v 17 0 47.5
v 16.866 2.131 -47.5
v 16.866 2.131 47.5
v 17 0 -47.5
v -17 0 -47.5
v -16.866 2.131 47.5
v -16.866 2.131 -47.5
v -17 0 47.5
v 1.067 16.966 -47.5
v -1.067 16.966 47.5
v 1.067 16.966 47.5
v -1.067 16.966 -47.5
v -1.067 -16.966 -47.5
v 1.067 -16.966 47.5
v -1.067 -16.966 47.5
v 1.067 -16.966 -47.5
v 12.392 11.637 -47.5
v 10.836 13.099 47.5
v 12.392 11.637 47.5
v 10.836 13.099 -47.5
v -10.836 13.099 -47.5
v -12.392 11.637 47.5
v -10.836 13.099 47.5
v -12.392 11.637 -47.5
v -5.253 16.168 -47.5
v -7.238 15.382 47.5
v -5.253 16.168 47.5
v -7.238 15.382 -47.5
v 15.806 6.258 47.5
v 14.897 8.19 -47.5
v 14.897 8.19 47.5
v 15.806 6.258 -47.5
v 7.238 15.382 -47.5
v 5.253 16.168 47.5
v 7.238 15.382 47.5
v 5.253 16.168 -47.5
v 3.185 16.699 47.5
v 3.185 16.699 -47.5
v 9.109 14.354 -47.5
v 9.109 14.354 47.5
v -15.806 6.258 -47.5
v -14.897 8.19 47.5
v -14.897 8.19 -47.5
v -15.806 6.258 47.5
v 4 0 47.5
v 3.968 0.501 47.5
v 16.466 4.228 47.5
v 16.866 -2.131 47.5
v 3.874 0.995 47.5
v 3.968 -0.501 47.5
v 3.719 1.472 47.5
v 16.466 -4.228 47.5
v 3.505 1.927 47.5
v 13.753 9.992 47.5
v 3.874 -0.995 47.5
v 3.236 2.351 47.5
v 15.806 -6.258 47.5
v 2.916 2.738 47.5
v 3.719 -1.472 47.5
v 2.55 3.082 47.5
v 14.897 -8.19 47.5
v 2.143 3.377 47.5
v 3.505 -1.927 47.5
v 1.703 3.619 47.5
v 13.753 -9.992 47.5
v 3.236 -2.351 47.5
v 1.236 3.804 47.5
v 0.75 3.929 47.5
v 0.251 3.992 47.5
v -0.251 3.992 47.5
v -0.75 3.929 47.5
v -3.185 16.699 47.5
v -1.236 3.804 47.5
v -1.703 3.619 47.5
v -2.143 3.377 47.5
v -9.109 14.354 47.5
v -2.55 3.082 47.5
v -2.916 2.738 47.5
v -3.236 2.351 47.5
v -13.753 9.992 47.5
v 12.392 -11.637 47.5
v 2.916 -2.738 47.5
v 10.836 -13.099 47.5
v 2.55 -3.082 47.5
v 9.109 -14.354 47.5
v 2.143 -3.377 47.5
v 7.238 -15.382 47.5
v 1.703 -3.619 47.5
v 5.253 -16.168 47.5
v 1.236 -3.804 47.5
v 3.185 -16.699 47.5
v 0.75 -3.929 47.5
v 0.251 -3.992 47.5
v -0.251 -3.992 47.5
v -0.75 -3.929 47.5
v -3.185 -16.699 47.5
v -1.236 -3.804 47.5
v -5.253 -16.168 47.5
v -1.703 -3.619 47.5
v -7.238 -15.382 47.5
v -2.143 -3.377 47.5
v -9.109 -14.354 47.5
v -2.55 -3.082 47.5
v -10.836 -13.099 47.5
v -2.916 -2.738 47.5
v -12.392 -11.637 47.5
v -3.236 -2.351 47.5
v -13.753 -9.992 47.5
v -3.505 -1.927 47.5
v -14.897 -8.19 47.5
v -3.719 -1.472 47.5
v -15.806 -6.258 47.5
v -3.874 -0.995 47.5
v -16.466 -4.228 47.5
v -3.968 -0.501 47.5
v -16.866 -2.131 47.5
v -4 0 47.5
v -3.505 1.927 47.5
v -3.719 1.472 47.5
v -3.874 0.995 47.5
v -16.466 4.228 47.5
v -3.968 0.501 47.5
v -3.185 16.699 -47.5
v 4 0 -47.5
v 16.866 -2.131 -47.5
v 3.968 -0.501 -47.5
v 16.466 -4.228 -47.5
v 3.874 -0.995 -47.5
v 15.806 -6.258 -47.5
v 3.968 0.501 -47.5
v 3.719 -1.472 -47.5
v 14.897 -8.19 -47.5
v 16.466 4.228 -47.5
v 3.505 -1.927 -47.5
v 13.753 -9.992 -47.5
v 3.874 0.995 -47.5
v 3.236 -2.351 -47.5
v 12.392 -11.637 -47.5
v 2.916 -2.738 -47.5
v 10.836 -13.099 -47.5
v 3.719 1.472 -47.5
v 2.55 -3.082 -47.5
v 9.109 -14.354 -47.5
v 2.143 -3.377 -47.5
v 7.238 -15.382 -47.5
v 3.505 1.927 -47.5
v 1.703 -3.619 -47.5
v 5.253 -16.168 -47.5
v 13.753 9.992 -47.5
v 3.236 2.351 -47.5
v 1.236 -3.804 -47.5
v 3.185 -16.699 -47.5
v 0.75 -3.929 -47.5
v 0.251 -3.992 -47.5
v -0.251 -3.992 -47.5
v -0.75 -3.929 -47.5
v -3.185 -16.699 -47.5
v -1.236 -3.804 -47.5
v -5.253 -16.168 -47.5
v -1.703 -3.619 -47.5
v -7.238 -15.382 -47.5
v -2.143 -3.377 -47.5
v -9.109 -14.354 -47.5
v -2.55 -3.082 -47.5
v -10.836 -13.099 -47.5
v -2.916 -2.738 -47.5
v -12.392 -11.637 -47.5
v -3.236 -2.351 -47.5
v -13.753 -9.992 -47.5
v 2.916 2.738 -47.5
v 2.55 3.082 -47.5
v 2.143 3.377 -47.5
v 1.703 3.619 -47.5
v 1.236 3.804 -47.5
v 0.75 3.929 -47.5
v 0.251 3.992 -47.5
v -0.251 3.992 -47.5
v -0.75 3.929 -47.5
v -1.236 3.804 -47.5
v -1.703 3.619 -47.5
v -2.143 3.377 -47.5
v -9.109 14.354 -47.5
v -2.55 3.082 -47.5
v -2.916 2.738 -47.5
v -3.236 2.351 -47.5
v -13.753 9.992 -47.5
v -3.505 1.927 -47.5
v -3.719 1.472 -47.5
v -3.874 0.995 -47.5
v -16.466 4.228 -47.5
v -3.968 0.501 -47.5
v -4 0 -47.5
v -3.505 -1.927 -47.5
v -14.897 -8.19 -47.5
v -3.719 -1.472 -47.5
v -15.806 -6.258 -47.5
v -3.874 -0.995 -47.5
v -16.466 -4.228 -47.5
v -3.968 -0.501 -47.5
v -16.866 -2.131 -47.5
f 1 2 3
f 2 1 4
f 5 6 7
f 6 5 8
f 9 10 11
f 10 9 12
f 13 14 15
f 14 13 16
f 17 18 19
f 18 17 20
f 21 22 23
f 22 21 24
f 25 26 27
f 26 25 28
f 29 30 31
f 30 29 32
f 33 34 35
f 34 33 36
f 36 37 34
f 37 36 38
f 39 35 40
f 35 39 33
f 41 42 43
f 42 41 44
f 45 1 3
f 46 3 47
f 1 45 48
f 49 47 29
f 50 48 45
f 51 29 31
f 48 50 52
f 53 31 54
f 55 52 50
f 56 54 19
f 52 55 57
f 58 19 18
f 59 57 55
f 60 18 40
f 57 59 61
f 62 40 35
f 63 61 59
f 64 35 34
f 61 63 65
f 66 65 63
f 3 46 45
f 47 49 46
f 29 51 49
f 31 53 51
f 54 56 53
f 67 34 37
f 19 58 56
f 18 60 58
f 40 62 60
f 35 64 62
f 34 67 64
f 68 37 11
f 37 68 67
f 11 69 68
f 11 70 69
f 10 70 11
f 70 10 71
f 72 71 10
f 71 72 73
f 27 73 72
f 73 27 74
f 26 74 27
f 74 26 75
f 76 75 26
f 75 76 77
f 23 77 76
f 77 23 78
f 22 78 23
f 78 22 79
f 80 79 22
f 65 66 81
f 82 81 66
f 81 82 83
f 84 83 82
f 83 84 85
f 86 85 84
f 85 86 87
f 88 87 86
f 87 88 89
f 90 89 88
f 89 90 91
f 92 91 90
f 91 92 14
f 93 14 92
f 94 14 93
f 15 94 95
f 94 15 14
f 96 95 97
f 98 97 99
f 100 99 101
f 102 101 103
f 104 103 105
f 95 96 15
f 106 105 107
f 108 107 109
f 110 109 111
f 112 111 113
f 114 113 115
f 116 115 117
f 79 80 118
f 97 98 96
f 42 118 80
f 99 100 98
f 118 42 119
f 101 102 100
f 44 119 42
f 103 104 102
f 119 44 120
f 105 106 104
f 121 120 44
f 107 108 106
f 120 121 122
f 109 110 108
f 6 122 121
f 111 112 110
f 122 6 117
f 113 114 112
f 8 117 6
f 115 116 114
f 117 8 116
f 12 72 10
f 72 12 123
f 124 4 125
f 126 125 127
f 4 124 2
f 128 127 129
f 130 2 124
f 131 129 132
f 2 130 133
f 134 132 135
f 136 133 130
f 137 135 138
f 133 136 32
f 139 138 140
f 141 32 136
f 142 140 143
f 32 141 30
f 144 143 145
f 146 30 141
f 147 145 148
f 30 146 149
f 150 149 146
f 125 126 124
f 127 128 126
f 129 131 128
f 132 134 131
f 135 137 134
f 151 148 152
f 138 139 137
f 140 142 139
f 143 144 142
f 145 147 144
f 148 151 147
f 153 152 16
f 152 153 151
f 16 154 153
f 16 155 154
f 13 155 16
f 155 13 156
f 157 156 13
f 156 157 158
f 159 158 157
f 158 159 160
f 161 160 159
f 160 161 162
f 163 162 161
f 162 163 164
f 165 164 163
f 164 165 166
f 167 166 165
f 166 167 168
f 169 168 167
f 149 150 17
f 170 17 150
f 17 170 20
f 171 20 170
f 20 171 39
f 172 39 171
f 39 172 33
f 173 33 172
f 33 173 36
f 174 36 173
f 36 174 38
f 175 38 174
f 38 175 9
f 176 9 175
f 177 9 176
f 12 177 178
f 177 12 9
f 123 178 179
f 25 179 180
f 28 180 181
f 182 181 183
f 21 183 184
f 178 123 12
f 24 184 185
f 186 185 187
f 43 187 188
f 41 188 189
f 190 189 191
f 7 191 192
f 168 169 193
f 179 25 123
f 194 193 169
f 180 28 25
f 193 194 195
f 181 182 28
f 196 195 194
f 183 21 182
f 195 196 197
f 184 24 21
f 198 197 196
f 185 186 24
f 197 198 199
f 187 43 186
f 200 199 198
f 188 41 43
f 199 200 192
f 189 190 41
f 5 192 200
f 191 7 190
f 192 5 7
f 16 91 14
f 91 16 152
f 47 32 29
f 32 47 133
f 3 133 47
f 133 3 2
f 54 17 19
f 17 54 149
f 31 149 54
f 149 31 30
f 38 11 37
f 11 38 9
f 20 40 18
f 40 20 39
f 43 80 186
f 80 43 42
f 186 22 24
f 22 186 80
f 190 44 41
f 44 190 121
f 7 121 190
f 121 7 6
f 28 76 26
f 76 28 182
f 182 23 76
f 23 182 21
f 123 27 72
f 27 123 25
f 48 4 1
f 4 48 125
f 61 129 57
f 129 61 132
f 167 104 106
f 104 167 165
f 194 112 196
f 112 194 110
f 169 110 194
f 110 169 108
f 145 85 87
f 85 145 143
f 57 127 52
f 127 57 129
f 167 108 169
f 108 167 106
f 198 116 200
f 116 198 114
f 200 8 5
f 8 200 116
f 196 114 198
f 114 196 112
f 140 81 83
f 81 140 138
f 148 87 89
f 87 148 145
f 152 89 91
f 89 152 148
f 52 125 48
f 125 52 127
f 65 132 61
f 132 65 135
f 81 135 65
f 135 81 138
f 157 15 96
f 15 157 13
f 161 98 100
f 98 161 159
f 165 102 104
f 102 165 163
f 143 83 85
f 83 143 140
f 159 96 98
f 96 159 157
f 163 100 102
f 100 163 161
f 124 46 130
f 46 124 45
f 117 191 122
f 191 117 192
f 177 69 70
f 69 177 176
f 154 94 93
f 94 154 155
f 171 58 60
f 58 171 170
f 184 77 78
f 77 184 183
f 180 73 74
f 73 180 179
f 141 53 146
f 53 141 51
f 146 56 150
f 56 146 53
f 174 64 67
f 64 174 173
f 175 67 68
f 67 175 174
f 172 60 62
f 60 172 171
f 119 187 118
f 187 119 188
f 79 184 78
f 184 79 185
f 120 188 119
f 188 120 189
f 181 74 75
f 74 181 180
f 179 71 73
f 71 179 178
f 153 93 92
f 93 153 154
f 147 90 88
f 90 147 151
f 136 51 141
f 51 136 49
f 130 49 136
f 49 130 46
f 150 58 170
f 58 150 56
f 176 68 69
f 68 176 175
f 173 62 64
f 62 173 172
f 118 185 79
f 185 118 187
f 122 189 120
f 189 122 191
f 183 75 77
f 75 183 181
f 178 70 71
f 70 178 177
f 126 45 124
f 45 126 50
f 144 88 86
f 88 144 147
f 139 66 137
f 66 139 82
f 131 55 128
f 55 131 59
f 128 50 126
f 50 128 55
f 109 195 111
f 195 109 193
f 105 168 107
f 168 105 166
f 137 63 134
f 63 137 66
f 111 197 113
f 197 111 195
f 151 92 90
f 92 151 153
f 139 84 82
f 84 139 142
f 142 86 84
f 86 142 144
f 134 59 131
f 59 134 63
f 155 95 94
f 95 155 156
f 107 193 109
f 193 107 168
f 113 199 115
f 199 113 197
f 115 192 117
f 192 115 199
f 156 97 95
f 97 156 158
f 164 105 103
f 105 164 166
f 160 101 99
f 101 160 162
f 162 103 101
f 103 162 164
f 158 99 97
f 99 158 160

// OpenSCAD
$fn = 50;


difference() {
	union() {
		translate(v = [0, 0, -47.5000000000]) {
			cylinder(h = 95, r = 17.0000000000);
		}
	}
	union() {
		translate(v = [0, 0, -100.0000000000]) {
			cylinder(h = 200, r = 4);
		}
	}
}
